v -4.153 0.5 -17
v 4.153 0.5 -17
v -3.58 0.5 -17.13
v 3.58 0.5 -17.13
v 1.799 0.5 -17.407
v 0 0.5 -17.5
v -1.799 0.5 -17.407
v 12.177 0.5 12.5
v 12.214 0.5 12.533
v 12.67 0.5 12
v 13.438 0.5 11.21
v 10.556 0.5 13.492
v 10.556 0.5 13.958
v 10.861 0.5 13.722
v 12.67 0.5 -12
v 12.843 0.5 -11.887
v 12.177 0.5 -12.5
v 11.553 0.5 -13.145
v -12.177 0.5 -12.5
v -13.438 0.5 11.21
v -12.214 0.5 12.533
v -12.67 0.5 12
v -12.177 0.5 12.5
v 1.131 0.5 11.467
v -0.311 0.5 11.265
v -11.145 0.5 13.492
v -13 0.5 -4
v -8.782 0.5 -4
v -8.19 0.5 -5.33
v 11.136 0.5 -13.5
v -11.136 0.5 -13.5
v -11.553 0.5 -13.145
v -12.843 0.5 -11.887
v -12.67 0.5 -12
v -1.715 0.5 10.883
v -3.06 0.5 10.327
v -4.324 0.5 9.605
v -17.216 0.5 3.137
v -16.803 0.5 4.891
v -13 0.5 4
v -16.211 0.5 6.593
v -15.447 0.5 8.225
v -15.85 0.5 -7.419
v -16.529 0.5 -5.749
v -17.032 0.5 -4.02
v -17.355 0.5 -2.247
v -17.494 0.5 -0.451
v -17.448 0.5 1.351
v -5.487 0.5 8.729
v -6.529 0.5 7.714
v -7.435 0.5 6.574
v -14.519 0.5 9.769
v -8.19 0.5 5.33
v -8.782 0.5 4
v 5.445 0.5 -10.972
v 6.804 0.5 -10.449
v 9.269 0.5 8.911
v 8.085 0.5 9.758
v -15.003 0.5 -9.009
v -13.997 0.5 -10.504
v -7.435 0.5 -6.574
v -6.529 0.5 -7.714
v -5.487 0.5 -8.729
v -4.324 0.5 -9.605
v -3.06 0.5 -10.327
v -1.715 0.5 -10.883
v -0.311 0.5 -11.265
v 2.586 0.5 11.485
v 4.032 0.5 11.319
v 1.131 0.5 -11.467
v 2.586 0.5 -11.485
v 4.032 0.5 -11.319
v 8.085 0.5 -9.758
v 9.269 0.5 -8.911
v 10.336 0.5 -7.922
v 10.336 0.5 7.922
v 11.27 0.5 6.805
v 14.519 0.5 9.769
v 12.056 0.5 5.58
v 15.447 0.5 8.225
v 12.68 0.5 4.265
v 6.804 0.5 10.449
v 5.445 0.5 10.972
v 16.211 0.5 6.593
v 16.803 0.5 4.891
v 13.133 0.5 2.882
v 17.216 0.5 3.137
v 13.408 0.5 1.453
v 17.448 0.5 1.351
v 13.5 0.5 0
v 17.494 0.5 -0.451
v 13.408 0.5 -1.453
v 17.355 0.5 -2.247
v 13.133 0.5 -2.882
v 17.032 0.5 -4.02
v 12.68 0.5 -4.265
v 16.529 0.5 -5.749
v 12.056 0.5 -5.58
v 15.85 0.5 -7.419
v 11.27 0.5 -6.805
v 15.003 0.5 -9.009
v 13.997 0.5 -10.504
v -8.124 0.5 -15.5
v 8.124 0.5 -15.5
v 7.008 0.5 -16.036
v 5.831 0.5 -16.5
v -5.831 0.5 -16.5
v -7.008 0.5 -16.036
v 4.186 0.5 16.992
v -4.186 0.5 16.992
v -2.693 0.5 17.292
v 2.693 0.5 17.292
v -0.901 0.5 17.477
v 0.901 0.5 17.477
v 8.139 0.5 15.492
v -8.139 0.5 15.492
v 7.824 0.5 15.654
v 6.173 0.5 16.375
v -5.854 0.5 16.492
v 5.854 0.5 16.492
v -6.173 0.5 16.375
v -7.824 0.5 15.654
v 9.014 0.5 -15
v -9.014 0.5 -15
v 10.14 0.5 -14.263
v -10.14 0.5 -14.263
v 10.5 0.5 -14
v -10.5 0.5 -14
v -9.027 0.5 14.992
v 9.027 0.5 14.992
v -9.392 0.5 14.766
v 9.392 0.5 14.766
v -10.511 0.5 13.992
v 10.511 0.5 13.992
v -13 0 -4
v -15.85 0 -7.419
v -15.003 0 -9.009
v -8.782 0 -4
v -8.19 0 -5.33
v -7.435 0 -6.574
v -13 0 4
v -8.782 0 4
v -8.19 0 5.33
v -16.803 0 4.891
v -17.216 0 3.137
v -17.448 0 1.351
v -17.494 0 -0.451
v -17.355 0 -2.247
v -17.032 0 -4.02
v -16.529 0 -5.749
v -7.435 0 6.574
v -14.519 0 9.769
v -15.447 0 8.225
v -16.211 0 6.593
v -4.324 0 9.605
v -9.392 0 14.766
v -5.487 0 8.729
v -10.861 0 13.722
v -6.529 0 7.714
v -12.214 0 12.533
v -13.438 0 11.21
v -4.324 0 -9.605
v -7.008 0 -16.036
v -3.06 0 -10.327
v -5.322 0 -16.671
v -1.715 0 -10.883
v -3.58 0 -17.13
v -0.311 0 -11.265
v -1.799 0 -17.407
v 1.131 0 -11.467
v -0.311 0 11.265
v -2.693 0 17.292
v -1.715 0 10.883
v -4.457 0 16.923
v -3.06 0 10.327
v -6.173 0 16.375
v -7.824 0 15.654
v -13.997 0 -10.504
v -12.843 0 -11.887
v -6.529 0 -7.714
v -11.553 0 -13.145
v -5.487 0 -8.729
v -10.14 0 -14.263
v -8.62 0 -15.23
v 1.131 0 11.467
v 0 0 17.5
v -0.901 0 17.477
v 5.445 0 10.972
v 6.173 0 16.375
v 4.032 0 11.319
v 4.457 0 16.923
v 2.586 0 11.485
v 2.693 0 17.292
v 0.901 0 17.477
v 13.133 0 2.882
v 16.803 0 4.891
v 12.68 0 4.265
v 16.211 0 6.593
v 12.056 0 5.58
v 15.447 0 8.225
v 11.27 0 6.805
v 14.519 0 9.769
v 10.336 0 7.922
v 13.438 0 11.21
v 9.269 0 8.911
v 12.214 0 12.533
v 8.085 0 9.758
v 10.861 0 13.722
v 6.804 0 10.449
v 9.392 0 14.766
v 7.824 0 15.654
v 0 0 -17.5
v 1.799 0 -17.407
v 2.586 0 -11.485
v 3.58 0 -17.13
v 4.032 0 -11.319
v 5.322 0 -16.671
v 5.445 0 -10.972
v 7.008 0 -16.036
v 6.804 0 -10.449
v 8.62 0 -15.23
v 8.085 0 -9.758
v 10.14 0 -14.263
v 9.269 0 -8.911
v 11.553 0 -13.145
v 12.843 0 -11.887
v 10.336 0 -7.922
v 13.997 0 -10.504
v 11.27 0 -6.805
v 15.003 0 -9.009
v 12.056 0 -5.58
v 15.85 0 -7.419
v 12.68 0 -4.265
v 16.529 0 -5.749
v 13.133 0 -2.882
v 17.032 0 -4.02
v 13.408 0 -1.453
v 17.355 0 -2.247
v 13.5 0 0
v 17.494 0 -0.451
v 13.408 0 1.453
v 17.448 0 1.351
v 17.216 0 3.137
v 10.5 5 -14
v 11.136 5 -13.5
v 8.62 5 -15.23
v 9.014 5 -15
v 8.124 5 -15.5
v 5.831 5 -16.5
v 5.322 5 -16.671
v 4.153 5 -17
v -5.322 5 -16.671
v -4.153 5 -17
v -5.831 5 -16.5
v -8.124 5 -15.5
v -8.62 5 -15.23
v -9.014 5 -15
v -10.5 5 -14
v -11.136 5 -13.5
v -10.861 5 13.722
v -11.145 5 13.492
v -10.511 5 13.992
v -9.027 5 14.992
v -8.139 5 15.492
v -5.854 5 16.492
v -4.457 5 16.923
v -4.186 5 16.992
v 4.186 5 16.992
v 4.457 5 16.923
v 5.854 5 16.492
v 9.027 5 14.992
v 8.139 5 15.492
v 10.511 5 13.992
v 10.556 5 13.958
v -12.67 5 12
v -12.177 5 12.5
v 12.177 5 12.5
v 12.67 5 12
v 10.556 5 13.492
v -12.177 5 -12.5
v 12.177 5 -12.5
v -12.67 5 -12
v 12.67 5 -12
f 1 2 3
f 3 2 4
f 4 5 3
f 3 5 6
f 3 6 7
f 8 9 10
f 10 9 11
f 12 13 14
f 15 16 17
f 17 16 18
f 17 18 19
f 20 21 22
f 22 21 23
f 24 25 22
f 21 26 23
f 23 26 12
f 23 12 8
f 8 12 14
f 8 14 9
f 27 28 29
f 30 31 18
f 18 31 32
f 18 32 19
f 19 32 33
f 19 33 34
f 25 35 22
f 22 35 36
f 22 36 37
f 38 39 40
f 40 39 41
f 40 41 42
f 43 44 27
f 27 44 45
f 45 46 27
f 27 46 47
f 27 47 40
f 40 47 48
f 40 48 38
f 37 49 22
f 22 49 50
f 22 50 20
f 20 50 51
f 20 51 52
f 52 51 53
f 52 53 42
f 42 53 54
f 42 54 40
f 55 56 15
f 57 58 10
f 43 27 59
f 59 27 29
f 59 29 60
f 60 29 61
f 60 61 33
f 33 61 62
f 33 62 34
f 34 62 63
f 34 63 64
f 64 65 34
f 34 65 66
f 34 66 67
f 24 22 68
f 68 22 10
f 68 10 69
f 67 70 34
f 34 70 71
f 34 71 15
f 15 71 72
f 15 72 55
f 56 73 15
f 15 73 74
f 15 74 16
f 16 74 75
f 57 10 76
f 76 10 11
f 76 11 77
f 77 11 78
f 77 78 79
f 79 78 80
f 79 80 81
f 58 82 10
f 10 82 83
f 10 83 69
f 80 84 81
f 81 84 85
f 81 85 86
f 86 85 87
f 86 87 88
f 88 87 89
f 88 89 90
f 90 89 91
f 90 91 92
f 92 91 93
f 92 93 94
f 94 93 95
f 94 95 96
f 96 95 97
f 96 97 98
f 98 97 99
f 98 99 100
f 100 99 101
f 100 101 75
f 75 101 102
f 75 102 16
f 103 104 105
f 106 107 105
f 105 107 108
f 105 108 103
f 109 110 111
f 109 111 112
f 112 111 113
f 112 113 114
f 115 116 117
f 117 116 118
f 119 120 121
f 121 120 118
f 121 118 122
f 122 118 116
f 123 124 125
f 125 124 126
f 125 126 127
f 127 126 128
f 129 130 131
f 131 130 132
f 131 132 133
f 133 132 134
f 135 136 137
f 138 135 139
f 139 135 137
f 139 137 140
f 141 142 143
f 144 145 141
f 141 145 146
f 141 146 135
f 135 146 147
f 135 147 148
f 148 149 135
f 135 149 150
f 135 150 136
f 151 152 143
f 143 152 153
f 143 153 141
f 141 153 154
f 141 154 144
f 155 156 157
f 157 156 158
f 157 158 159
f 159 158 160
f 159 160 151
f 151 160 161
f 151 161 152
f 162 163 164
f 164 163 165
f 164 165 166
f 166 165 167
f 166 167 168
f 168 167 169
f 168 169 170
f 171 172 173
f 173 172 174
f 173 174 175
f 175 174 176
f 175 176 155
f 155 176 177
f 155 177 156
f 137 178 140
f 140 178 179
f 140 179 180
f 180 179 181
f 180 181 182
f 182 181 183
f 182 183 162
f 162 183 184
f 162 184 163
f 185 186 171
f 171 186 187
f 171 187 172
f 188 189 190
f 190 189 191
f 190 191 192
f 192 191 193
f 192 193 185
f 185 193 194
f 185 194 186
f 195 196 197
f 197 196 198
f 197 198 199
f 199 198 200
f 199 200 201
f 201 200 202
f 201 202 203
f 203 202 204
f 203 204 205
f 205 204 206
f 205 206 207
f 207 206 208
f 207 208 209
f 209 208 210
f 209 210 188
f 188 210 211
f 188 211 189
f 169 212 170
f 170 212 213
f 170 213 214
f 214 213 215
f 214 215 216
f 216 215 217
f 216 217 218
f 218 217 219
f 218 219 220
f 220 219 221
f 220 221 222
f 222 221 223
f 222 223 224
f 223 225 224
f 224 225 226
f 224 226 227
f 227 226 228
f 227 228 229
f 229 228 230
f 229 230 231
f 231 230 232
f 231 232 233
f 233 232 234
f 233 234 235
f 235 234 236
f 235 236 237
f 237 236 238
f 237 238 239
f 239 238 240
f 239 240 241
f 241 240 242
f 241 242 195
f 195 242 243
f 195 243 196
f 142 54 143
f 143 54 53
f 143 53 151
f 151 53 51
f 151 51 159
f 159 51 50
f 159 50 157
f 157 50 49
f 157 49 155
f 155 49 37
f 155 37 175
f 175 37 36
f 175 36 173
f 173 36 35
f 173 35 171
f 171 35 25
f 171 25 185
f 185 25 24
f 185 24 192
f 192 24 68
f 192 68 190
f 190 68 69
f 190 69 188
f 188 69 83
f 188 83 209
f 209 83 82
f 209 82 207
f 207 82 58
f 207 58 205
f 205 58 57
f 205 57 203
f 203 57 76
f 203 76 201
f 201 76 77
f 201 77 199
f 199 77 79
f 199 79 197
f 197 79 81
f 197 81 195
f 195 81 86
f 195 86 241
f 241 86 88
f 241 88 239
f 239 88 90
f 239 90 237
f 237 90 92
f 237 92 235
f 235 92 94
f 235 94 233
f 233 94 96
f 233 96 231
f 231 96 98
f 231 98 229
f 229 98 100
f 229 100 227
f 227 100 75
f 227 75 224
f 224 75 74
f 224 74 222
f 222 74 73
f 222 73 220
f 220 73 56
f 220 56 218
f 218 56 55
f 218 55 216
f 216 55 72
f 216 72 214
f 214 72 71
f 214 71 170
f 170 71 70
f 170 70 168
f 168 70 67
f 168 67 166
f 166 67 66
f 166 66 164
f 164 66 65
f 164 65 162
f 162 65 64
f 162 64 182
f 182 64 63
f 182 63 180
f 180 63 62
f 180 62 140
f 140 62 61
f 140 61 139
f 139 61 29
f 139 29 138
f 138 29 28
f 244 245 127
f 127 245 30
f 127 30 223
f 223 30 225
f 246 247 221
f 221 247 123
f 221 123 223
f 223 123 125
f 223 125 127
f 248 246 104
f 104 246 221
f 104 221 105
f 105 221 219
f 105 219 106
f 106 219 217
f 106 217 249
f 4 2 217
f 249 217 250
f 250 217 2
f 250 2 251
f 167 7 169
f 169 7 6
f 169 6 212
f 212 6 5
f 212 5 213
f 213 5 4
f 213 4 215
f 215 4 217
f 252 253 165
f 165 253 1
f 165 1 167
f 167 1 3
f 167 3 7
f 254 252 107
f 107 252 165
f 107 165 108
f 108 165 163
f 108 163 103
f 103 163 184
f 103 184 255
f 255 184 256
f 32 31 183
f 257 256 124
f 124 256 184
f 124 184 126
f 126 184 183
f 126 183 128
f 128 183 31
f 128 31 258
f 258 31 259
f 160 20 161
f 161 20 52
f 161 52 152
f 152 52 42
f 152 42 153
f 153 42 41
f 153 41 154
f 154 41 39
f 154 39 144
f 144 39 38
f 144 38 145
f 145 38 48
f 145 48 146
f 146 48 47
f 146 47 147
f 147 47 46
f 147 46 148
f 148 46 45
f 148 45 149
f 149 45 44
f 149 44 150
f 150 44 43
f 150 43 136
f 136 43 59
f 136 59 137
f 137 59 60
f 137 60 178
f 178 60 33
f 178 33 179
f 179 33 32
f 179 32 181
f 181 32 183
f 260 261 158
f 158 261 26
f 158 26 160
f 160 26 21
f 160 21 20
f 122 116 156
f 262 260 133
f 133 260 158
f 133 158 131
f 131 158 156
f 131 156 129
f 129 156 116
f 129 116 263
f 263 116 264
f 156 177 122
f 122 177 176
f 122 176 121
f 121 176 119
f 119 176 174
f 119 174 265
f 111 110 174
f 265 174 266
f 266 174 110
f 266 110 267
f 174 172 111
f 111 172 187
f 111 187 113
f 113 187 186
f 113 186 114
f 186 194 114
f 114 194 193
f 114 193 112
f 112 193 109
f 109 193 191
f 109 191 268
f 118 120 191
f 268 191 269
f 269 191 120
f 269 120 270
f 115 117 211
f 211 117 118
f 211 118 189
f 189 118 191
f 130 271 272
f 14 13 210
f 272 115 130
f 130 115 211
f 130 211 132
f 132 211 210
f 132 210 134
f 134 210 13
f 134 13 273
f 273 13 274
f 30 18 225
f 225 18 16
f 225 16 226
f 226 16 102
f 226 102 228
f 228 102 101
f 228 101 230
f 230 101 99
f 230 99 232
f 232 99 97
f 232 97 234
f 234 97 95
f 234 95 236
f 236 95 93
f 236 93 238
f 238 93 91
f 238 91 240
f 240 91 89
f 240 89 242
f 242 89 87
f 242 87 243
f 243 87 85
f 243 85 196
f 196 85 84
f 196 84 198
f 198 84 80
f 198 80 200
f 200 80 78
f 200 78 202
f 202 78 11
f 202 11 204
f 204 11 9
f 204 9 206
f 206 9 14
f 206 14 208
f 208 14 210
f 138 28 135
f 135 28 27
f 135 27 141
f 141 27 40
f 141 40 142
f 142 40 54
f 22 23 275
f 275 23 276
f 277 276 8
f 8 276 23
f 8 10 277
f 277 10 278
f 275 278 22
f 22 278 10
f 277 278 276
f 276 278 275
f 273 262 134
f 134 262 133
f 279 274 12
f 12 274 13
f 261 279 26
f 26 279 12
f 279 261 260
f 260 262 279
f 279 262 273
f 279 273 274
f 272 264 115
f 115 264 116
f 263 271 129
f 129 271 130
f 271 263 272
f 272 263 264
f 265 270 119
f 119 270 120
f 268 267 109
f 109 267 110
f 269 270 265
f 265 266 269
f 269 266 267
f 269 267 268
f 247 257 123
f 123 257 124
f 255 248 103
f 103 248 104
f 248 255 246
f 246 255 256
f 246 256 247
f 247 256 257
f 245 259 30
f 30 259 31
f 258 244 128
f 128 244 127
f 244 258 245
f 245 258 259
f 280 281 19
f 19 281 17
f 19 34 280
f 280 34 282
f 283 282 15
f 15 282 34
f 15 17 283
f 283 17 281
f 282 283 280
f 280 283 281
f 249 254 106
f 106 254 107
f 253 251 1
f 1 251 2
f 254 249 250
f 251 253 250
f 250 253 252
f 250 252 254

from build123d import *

# Parameters (mm, degrees)
SKETCH1_R           = 17.5
BOSS_EXTRUDE1_DEPTH = 0.5
SKETCH2_R           = 11.5
CUT_EXTRUDE1_DEPTH  = 0.5
SKETCH3_W           = 15
SKETCH3_H           = 8
CUT_EXTRUDE4_DEPTH  = 2.5
BOSS_EXTRUDE6_DEPTH = 4.5


with BuildPart() as part:
    # Sketch1 → Boss-Extrude1 (new body)
    with BuildSketch(Plane(origin=(0, 0, 0), x_dir=(1, 0, 0), z_dir=(0, 1, 0))):
        with Locations(Location((0, 0, 0), (0, 0, 270))):
            Circle(SKETCH1_R)
    extrude(amount=BOSS_EXTRUDE1_DEPTH)

    # Sketch2 → Cut-Extrude1 (cut)
    with BuildSketch(Plane(origin=(0, 0.5, 0), x_dir=(1, 0, 0), z_dir=(0, 1, 0))):
        with Locations(Location((2, 0, 0), (0, 0, 270))):
            Circle(SKETCH2_R)
    extrude(amount=-CUT_EXTRUDE1_DEPTH, mode=Mode.SUBTRACT)

    # Sketch3 → Cut-Extrude4 (cut)
    with BuildSketch(Plane(origin=(0, 0, 0), x_dir=(1, 0, 0), z_dir=(0, 1, 0))):
        with Locations((-5.5, 0)):
            Rectangle(SKETCH3_W, SKETCH3_H)
    extrude(amount=CUT_EXTRUDE4_DEPTH, mode=Mode.SUBTRACT)

    # Sketch7 → Boss-Extrude6 (add)
    with BuildSketch(Plane(origin=(0, 0.5, 0), x_dir=(1, 0, 0), z_dir=(0, 1, 0))):
        with BuildLine():
            Line((-11.135528726, 13.5), (11.135528726, 13.5))
            ThreePointArc((11.135528726, 13.5), (10.820652744, 13.753671299), (10.5, 14))
            Line((10.5, 14), (-10.5, 14))
            ThreePointArc((-10.5, 14), (-10.820652744, 13.753671299), (-11.135528726, 13.5))
        make_face()
        with BuildLine():
            Line((12.176537068, 12.5), (-12.176537068, 12.5))
            ThreePointArc((-12.176537068, 12.5), (-12.42556977, 12.252480192), (-12.669572012, 12))
            Line((-12.669572012, 12), (12.669572012, 12))
            ThreePointArc((12.669572012, 12), (12.42556977, 12.252480192), (12.176537068, 12.5))
        make_face()
        with BuildLine():
            ThreePointArc((-11.145229996, -13.491992008), (-10.830835088, -13.74565427), (-10.510668849, -13.991992008))
            Line((-10.510668849, -13.991992008), (10.510668849, -13.991992008))
            ThreePointArc((10.510668849, -13.991992008), (10.53333572, -13.974936086), (10.555974914, -13.957843444))
            Line((10.555974914, -13.957843444), (10.555974914, -13.491992008))
            Line((10.555974914, -13.491992008), (-11.145229996, -13.491992008))
        make_face()
        with BuildLine():
            Line((-9.013878189, 15), (9.013878189, 15))
            ThreePointArc((9.013878189, 15), (8.572604405, 15.256488905), (8.124038405, 15.5))
            Line((8.124038405, 15.5), (-8.124038405, 15.5))
            ThreePointArc((-8.124038405, 15.5), (-8.572604405, 15.256488905), (-9.013878189, 15))
        make_face()
        with BuildLine():
            ThreePointArc((-9.027190906, -14.991992008), (-8.586884855, -15.248455938), (-8.139298719, -15.491992008))
            Line((-8.139298719, -15.491992008), (8.139298719, -15.491992008))
            ThreePointArc((8.139298719, -15.491992008), (8.586884855, -15.248455938), (9.027190906, -14.991992008))
            Line((9.027190906, -14.991992008), (-9.027190906, -14.991992008))
        make_face()
        with BuildLine():
            Line((-5.830951895, 16.5), (5.830951895, 16.5))
            ThreePointArc((5.830951895, 16.5), (4.998387844, 16.770990399), (4.153311931, 17))
            Line((4.153311931, 17), (-4.153311931, 17))
            ThreePointArc((-4.153311931, 17), (-4.998387844, 16.770990399), (-5.830951895, 16.5))
        make_face()
        with BuildLine():
            Line((5.853562985, -16.491992008), (-5.853562985, -16.491992008))
            ThreePointArc((-5.853562985, -16.491992008), (-5.025979841, -16.762742217), (-4.185953609, -16.991992008))
            Line((-4.185953609, -16.991992008), (4.185953609, -16.991992008))
            ThreePointArc((4.185953609, -16.991992008), (5.025979841, -16.762742217), (5.853562985, -16.491992008))
        make_face()
        with BuildLine():
            Line((12.669572012, -12), (-12.669572012, -12))
            ThreePointArc((-12.669572012, -12), (-12.42556977, -12.252480192), (-12.176537068, -12.5))
            Line((-12.176537068, -12.5), (12.176537068, -12.5))
            ThreePointArc((12.176537068, -12.5), (12.42556977, -12.252480192), (12.669572012, -12))
        make_face()
    extrude(amount=BOSS_EXTRUDE6_DEPTH)


solid = part.part
